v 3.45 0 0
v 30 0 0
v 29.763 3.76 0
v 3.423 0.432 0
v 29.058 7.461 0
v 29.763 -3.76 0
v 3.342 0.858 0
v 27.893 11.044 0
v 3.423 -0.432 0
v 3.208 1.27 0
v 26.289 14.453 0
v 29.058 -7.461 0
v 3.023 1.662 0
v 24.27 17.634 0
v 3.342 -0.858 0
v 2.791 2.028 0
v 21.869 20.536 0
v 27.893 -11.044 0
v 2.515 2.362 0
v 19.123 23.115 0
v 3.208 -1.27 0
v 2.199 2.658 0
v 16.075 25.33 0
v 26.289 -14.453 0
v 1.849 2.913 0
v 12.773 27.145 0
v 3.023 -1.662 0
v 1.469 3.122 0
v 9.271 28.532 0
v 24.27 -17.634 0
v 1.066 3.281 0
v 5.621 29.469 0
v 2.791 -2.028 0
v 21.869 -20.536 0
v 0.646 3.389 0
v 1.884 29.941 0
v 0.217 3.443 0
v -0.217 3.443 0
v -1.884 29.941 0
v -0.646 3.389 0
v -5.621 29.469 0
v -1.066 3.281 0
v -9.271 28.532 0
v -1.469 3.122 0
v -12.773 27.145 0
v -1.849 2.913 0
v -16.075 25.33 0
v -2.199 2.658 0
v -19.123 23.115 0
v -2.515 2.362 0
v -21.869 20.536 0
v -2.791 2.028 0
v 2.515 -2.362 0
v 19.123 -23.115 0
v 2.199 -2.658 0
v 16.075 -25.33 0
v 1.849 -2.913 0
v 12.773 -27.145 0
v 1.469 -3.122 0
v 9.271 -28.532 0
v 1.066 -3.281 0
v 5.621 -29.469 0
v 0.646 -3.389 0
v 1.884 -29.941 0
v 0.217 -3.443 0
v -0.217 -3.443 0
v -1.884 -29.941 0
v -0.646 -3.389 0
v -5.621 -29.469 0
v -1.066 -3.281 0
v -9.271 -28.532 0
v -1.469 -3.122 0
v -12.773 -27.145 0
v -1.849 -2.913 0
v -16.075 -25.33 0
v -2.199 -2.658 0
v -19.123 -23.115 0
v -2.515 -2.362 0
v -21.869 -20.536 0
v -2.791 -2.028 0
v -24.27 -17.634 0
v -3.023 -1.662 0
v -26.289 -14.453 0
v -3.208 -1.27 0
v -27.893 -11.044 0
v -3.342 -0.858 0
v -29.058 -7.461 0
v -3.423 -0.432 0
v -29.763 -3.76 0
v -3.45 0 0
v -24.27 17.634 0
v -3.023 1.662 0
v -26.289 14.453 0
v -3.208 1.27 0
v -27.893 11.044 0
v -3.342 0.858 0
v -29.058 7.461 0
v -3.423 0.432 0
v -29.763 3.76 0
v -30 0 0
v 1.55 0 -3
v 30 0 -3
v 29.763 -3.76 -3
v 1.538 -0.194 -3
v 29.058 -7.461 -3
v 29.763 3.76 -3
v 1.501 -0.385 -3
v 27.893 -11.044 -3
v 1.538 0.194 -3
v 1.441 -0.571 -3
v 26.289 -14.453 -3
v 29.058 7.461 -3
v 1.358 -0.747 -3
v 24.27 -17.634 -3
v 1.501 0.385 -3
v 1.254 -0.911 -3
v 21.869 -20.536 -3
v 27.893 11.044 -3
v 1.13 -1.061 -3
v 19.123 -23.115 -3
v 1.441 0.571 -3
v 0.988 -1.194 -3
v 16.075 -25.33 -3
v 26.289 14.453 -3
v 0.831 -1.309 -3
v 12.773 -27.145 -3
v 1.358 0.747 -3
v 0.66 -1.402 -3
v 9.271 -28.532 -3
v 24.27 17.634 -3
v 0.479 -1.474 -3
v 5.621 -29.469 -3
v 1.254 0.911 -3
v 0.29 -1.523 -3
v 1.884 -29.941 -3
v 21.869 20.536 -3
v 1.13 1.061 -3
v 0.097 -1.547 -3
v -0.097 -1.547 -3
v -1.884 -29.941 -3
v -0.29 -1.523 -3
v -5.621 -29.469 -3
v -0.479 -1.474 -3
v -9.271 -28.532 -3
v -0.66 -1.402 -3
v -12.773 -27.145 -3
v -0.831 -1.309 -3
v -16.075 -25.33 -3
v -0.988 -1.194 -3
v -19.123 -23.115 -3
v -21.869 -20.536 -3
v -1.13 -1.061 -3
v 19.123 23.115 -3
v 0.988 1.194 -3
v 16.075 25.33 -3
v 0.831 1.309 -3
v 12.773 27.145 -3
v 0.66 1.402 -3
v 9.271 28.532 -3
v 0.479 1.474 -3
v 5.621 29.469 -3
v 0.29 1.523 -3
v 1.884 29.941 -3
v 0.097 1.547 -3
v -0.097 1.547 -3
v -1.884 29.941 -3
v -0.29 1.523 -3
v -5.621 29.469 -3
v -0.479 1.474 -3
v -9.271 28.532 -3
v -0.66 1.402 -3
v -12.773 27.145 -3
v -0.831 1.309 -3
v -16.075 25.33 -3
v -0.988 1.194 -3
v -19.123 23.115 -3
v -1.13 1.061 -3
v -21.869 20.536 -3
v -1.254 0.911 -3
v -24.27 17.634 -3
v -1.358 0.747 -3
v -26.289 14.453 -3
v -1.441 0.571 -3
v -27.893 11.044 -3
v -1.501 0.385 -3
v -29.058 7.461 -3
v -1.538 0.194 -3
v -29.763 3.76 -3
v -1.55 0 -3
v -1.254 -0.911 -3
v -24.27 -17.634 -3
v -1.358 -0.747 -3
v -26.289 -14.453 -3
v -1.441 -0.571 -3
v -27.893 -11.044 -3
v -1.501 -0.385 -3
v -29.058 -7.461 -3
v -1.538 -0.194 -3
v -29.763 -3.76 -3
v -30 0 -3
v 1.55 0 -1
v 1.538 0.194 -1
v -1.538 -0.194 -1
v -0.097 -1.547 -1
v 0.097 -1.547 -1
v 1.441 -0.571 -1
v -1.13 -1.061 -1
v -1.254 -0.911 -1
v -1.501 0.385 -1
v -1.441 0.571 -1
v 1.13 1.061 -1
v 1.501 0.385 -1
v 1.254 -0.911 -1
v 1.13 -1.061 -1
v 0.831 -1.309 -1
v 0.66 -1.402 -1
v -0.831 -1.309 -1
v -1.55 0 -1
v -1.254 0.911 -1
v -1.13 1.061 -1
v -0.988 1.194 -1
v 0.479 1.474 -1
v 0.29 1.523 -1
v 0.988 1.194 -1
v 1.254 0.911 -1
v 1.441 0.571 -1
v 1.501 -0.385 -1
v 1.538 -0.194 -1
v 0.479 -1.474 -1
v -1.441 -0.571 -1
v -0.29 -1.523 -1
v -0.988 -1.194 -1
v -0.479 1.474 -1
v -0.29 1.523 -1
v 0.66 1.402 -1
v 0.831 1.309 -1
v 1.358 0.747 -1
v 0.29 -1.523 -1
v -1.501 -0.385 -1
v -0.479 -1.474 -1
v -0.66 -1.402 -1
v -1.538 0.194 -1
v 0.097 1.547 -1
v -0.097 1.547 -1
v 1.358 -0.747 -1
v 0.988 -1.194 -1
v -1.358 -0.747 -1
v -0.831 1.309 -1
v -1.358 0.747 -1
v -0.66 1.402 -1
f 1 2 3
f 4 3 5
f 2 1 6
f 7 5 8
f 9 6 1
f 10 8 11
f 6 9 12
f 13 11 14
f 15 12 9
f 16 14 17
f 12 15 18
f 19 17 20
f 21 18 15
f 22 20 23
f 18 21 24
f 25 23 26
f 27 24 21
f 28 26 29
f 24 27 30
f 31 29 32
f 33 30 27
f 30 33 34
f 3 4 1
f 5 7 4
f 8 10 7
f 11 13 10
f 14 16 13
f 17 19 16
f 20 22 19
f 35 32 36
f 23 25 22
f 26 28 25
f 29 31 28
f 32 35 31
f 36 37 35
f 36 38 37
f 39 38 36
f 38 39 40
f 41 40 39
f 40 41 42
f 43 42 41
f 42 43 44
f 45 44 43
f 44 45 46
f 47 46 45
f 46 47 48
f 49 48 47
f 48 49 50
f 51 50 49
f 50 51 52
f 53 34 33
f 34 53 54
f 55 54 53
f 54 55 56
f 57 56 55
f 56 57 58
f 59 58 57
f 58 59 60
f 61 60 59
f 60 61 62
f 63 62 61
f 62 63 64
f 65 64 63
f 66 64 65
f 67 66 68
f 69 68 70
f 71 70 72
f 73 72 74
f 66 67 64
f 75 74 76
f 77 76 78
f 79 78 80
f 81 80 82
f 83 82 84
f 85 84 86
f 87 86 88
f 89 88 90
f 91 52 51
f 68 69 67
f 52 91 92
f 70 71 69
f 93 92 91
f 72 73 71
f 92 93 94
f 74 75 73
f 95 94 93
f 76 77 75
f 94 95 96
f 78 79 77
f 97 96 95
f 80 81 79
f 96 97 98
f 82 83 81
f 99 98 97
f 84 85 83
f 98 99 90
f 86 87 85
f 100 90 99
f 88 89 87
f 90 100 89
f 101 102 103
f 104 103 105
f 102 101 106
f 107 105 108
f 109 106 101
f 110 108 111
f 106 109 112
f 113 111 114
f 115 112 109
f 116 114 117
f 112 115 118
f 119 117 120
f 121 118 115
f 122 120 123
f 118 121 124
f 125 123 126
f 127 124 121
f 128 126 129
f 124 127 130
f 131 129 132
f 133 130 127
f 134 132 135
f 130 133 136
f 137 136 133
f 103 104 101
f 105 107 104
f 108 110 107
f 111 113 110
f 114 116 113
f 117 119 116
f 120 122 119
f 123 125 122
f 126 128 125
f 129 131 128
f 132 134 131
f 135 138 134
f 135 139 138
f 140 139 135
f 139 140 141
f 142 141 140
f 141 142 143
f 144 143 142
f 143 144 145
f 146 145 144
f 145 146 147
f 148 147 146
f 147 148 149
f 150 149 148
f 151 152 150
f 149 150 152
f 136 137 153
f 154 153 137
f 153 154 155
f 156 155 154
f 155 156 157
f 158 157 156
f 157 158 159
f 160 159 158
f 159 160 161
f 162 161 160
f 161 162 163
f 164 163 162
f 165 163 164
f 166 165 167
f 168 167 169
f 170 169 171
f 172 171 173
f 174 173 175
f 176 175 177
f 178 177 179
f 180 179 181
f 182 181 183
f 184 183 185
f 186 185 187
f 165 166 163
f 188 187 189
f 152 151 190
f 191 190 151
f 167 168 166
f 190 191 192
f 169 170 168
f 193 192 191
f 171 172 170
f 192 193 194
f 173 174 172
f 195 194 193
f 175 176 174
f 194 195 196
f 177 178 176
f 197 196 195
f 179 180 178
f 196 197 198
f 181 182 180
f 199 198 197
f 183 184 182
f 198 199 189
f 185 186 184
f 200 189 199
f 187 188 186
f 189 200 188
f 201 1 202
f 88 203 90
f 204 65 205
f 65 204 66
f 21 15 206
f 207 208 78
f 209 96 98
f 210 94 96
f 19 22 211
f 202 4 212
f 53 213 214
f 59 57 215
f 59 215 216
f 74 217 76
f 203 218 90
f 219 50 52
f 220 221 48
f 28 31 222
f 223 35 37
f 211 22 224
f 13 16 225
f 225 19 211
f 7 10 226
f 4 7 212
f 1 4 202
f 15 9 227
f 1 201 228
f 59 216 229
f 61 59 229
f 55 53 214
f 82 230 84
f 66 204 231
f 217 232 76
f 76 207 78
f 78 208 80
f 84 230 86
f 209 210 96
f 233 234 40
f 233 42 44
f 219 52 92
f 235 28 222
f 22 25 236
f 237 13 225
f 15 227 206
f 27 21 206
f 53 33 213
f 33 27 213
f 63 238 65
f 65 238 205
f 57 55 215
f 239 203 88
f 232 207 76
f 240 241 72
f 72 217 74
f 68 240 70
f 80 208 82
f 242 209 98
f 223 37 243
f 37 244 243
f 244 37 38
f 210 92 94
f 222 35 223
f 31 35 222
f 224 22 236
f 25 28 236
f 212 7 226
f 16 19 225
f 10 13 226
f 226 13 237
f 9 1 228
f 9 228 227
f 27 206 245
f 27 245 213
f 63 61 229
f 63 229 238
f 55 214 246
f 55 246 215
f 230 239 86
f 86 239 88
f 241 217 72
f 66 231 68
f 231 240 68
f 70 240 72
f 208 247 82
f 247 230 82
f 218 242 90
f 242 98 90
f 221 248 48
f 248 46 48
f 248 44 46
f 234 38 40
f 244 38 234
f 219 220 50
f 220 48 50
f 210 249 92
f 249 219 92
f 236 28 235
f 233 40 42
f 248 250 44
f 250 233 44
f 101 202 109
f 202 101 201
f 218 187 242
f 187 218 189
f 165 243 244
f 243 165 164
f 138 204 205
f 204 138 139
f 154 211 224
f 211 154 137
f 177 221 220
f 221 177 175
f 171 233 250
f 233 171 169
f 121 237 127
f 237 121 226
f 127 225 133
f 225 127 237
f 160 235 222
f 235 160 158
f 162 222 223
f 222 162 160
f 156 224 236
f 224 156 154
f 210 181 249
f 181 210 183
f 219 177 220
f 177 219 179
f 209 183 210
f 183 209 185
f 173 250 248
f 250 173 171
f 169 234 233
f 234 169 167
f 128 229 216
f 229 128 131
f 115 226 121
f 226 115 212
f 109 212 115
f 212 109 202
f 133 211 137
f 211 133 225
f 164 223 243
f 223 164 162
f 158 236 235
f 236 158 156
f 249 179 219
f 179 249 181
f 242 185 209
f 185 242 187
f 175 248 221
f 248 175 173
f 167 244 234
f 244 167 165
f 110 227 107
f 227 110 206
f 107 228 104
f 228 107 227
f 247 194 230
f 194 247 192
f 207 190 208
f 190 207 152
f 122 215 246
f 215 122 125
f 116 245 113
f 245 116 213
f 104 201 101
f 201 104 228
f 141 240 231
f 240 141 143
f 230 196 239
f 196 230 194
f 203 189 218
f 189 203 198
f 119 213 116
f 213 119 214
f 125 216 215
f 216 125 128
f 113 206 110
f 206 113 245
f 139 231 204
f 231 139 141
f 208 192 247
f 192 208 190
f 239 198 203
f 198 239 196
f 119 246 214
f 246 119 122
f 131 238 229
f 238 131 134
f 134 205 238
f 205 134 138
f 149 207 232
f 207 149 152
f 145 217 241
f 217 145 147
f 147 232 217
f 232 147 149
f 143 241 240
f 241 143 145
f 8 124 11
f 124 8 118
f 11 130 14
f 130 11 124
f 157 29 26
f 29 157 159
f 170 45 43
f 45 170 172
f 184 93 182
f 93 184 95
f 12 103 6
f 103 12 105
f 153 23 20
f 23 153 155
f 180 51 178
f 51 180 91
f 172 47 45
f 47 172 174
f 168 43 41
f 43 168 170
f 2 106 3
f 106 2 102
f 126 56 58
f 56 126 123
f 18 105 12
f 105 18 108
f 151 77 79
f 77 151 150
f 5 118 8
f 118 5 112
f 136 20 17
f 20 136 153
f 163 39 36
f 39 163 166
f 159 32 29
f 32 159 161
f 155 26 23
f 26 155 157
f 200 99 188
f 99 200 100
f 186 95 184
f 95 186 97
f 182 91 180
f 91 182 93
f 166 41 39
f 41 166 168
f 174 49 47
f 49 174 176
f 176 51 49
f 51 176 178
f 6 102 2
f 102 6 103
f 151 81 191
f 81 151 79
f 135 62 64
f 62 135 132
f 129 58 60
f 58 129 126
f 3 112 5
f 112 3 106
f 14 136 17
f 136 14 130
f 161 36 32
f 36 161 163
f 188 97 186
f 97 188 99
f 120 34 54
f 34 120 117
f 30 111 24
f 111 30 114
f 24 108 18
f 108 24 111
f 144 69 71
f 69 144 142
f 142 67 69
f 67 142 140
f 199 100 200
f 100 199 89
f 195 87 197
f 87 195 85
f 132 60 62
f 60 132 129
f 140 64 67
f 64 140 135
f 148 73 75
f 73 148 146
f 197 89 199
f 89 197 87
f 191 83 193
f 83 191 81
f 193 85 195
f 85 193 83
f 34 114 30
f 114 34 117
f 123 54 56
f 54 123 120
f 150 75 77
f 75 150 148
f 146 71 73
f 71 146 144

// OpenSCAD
$fn = 50;


difference() {
	union() {
		translate(v = [0, 0, -3.0000000000]) {
			cylinder(h = 3, r = 30.0000000000);
		}
	}
	union() {
		translate(v = [0, 0, 0]) {
			rotate(a = [0, 0, 0]) {
				difference() {
					union() {
						translate(v = [0, 0, -3.0000000000]) {
							cylinder(h = 3, r = 1.2500000000);
						}
						translate(v = [0, 0, -1.0000000000]) {
							cylinder(h = 1.0000000000, r1 = 1.5500000000, r2 = 3.4500000000);
						}
						translate(v = [0, 0, -3.0000000000]) {
							cylinder(h = 3, r = 1.5500000000);
						}
						translate(v = [0, 0, -3.0000000000]) {
							cylinder(h = 3, r = 1.2500000000);
						}
					}
					union();
				}
			}
		}
	}
}
